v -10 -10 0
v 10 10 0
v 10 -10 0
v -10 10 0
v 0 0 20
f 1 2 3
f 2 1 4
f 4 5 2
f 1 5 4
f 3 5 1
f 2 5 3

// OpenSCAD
// Custom polyhedron - pyramid
polyhedron(
    points = [
        [10, 10, 0], [-10, 10, 0], [-10, -10, 0], [10, -10, 0],  // base
        [0, 0, 20]  // apex
    ],
    faces = [
        [0, 1, 2, 3],  // base
        [0, 4, 1], [1, 4, 2], [2, 4, 3], [3, 4, 0]  // sides
    ]
);
